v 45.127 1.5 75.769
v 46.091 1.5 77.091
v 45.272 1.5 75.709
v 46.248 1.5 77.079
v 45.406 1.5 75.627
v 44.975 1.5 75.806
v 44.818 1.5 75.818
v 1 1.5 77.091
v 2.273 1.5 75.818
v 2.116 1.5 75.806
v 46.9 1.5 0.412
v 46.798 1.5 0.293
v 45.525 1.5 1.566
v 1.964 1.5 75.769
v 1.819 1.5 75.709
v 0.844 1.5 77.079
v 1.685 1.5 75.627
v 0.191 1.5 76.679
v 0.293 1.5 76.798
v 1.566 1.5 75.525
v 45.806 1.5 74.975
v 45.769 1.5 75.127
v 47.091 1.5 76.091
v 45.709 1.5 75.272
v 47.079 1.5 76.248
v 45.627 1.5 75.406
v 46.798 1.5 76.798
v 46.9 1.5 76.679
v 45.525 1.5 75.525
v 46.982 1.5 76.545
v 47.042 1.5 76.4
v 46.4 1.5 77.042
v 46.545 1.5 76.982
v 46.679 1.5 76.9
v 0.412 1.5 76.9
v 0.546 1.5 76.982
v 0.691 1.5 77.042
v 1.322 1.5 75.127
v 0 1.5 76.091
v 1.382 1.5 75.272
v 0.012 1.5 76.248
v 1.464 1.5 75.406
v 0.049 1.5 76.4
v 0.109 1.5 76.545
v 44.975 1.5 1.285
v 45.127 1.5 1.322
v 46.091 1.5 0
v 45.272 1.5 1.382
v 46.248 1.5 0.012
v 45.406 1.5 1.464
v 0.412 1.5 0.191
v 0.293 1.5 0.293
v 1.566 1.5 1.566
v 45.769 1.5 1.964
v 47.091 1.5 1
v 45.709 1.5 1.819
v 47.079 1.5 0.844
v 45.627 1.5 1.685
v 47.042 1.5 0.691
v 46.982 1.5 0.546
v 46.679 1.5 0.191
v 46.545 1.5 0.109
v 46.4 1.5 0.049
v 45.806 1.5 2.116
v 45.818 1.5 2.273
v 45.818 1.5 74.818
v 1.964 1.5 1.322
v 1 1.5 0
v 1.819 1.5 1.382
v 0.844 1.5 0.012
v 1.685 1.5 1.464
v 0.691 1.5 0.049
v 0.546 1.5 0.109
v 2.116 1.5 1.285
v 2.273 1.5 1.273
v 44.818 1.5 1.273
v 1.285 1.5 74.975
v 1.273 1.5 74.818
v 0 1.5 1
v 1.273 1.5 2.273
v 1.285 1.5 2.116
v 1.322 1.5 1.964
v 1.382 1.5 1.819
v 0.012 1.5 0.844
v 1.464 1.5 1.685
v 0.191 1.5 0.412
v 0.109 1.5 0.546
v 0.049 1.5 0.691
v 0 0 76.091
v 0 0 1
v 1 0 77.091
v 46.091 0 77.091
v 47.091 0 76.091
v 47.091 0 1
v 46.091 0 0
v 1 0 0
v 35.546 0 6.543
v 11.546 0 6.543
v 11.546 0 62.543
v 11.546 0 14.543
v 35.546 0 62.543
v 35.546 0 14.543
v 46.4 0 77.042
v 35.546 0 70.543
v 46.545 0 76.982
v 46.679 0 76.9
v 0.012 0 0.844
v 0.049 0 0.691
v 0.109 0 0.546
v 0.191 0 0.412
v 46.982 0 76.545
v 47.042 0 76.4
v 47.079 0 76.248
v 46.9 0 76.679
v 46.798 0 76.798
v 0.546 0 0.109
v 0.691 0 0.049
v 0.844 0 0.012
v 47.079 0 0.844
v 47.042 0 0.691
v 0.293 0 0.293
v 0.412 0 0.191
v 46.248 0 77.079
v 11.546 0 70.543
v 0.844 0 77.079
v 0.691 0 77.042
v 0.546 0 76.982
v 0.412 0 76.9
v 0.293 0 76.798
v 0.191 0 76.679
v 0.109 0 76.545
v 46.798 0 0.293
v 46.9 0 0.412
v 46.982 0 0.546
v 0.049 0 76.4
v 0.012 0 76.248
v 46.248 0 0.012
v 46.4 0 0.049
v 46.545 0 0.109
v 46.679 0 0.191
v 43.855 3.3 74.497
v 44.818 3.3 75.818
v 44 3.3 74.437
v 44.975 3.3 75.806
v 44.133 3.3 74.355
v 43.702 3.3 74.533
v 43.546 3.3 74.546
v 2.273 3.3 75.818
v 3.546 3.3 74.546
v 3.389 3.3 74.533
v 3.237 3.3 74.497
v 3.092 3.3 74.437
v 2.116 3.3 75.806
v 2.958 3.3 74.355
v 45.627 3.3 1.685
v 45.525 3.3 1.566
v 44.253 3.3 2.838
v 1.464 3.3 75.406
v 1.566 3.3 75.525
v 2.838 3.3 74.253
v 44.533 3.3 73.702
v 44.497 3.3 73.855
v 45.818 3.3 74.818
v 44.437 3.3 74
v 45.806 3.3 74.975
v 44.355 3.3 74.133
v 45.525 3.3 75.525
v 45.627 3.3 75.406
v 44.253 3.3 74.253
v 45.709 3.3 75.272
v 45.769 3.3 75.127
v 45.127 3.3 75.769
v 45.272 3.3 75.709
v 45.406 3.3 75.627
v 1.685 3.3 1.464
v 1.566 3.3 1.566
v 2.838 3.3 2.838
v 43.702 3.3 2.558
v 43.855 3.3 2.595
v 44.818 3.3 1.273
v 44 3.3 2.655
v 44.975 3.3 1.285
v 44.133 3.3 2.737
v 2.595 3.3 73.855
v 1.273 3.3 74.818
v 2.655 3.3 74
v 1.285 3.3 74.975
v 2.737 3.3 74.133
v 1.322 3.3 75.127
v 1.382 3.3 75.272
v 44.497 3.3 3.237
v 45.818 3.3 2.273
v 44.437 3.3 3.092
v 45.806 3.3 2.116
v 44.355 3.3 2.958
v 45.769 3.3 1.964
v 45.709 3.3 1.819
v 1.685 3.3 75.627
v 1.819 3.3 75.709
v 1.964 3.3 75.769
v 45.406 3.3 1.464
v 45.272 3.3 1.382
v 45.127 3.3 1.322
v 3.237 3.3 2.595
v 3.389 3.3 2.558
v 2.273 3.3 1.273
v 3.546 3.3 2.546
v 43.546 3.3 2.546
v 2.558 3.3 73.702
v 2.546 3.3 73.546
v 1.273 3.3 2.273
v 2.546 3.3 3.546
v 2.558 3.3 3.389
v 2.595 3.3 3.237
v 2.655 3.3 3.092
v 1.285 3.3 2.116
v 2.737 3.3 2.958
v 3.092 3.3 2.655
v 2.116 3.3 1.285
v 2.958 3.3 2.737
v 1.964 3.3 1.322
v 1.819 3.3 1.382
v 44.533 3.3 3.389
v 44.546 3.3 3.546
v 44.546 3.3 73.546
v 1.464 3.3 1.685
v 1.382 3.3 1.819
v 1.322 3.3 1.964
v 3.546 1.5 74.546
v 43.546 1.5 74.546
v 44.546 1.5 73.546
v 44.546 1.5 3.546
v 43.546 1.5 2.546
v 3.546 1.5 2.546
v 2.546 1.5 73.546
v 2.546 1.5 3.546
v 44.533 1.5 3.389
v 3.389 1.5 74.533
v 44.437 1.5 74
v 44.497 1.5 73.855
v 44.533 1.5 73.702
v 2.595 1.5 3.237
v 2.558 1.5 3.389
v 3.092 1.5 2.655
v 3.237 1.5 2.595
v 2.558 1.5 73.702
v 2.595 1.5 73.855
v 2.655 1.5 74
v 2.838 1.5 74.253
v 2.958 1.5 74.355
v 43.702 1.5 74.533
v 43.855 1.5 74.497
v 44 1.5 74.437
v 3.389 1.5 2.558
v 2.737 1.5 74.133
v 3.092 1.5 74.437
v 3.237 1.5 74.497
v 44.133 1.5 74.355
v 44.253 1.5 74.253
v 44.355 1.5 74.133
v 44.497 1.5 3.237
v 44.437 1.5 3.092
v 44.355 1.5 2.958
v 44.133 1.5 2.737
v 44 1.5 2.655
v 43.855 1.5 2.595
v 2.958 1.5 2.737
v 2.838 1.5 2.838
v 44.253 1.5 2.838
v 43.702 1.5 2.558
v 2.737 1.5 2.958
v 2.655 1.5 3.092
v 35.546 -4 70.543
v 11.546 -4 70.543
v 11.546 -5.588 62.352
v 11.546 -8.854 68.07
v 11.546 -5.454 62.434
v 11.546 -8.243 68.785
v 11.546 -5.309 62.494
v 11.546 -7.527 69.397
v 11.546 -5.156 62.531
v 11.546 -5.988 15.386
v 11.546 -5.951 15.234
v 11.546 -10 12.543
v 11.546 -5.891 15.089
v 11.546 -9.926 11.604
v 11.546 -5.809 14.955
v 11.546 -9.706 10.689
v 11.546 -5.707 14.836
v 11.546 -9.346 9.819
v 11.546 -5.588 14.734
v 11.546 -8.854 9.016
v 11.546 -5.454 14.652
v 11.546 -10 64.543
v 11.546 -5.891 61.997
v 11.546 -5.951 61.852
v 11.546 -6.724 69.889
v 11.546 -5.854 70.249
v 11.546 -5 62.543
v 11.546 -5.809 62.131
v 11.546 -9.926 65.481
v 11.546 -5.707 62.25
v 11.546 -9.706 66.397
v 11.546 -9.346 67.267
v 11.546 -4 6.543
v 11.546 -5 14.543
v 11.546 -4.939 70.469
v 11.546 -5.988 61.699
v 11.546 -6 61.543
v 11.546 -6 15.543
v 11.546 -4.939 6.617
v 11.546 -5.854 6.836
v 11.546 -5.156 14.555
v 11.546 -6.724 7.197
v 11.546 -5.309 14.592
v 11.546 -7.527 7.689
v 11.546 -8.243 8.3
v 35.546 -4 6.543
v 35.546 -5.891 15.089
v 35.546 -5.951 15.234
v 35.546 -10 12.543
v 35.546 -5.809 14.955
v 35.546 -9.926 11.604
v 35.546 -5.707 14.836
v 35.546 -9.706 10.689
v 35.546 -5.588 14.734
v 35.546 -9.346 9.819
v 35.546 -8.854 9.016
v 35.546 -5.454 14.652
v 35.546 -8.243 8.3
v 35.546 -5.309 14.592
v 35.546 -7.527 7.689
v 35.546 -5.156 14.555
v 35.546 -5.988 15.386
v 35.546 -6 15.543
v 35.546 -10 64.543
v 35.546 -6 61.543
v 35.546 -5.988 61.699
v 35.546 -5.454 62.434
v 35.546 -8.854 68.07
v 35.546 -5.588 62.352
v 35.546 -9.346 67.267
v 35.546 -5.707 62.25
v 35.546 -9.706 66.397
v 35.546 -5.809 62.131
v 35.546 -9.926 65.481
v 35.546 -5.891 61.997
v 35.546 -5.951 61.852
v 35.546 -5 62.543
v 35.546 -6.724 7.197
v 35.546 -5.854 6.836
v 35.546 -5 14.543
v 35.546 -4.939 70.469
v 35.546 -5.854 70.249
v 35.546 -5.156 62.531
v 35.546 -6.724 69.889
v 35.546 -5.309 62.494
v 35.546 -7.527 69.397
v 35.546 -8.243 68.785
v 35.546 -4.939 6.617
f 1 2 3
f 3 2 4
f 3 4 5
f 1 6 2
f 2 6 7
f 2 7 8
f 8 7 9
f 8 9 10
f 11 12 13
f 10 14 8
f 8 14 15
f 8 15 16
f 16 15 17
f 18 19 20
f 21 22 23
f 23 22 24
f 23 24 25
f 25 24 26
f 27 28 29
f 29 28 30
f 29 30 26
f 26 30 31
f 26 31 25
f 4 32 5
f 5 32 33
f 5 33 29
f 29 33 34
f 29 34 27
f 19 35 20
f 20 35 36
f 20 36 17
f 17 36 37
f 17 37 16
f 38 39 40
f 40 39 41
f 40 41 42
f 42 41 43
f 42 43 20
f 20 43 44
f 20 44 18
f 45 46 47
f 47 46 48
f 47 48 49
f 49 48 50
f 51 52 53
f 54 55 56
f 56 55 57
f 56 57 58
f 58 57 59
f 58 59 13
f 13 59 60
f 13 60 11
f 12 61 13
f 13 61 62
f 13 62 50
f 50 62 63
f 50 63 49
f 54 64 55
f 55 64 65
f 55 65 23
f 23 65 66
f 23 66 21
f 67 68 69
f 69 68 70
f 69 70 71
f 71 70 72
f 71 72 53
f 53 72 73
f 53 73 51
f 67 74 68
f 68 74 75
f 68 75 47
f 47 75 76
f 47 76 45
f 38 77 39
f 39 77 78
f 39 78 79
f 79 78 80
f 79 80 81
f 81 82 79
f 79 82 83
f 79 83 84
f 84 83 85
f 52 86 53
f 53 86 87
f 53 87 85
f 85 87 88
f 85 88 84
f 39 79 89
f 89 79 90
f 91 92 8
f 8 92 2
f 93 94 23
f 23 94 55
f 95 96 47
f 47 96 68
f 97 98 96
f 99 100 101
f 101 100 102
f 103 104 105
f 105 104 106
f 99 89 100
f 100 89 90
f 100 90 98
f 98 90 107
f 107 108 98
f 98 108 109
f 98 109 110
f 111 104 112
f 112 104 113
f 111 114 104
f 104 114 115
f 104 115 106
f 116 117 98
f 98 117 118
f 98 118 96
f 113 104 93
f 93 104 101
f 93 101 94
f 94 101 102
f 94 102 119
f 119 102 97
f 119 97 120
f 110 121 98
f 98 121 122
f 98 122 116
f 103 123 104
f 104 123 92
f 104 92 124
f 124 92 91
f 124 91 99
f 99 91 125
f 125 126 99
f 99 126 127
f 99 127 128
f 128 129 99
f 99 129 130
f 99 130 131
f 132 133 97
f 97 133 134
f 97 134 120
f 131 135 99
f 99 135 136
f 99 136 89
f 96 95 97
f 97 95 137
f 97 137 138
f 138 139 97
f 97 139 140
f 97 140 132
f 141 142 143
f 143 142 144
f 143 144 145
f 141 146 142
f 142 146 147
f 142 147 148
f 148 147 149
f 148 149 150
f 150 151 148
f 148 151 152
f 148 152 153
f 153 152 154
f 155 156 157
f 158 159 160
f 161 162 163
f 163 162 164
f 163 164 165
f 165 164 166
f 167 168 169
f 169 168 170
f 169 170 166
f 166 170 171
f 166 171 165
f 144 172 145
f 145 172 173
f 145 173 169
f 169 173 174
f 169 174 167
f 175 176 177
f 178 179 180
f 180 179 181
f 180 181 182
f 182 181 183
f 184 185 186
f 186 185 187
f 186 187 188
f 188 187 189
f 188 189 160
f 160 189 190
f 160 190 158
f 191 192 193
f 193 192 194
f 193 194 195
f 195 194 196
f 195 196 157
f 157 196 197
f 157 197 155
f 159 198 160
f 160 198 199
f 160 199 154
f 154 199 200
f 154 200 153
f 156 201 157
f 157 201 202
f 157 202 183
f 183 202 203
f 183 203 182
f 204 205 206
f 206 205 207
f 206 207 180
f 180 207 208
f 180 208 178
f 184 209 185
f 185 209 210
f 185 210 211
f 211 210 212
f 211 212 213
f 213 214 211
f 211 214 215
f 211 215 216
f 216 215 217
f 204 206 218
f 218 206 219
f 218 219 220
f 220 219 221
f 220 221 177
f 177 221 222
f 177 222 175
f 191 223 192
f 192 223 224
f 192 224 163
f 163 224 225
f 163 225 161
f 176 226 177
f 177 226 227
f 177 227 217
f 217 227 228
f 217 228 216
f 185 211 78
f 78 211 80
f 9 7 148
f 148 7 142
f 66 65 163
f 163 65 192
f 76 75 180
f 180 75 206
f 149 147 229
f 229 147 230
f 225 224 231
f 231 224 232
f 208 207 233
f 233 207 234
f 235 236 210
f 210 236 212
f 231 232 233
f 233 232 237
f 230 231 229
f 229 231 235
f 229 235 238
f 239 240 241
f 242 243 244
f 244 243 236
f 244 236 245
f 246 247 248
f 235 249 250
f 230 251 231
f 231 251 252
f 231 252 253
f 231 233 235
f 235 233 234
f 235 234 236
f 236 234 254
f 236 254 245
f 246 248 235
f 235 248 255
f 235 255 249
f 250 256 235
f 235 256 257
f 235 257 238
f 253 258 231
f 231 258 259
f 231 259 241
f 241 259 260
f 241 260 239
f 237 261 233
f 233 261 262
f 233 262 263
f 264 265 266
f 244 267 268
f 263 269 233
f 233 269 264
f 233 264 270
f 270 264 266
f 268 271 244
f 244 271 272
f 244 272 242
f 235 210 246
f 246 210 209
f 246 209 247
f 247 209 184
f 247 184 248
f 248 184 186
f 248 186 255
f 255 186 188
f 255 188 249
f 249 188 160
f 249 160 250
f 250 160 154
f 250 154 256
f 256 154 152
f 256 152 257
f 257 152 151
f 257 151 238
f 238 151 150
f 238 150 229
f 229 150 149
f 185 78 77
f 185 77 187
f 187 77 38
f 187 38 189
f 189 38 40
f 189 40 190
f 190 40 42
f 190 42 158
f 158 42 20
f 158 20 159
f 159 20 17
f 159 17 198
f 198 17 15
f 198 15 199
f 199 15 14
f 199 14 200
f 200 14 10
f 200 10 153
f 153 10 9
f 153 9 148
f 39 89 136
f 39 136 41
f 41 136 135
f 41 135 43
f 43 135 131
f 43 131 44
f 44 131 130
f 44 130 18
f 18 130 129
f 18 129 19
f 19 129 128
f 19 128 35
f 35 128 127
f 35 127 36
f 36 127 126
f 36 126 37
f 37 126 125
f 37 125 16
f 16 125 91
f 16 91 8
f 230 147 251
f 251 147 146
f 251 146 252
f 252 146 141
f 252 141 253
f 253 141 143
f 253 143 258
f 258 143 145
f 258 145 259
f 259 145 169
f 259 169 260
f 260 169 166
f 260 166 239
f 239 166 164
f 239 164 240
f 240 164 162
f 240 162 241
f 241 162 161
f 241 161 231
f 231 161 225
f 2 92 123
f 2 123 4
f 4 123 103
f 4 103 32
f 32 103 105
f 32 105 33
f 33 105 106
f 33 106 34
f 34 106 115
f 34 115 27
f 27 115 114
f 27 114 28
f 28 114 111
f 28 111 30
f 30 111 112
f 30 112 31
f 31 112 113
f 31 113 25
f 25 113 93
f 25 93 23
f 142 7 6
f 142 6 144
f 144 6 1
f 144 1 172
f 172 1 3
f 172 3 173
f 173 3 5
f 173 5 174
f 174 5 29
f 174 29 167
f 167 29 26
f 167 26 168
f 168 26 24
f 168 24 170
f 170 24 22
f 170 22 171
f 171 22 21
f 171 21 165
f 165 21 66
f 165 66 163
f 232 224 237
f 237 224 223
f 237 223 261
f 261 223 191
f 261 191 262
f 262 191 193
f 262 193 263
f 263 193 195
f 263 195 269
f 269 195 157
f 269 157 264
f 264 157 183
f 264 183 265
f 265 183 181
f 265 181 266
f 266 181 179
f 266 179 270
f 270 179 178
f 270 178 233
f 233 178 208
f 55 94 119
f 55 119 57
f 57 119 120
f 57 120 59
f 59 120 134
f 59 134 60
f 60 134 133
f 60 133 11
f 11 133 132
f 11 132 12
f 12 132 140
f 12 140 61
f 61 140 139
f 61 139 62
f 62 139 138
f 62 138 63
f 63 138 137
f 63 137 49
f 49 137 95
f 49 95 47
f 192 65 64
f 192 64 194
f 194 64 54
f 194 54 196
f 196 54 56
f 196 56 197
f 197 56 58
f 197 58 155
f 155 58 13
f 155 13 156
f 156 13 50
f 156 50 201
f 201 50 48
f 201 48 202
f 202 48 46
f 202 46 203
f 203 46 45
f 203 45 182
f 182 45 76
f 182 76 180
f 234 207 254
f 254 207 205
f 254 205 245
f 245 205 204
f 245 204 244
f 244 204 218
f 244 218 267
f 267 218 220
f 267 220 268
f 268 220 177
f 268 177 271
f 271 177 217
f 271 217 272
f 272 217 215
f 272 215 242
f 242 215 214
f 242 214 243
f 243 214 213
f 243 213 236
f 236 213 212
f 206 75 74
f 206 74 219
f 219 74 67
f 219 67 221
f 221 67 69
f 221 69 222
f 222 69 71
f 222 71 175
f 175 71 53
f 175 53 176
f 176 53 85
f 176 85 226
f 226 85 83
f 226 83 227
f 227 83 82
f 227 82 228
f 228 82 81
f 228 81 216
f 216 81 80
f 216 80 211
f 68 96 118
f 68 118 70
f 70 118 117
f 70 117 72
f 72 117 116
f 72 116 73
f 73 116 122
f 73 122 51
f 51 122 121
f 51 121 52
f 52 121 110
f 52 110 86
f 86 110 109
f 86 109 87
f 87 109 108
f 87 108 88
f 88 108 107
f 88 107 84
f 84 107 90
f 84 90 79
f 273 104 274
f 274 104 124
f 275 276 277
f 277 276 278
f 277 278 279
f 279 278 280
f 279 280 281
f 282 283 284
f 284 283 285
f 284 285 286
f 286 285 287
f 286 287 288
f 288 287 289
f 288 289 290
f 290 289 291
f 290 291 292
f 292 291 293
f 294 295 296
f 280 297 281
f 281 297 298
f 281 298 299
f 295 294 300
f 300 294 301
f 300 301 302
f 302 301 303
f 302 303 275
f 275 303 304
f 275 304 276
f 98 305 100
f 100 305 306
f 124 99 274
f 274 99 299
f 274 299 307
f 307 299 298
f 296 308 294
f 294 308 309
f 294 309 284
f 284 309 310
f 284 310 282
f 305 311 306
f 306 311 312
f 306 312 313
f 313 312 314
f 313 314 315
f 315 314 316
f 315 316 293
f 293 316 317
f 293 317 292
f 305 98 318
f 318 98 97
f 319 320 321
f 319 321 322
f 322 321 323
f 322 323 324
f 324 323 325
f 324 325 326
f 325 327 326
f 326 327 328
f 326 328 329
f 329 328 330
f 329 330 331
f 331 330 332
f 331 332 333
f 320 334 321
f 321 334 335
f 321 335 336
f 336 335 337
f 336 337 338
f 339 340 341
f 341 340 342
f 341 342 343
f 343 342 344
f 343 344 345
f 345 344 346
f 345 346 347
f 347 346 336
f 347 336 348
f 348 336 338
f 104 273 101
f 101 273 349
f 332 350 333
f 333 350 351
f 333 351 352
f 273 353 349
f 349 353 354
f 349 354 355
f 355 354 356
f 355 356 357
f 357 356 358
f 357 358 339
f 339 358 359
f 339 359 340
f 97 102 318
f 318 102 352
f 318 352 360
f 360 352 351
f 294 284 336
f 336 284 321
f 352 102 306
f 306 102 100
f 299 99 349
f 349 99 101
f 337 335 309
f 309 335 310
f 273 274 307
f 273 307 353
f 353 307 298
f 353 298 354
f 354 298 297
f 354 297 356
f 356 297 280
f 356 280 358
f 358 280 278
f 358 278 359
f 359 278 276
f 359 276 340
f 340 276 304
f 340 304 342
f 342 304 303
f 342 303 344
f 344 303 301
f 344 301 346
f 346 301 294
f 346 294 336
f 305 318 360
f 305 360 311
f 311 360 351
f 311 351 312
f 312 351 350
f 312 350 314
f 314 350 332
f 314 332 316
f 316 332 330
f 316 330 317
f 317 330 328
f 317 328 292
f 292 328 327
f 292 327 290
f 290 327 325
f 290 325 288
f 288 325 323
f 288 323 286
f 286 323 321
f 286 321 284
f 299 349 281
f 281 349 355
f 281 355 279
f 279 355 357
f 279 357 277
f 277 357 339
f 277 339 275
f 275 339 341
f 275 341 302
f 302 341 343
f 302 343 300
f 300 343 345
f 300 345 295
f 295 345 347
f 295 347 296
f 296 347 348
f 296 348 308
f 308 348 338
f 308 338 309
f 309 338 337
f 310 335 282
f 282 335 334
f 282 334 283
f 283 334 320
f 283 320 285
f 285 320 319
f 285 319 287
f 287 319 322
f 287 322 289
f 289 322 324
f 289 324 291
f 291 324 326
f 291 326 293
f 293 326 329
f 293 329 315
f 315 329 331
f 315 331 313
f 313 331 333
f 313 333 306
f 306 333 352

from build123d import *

# Parameters (mm, degrees)
SKETCH1_W           = 47.09116882
SKETCH1_H           = 77.09116882
BOSS_EXTRUDE1_DEPTH = 1.5
SKETCH2_W           = 44.545584412
SKETCH2_H           = 74.545584412
SKETCH2_W_2         = 42
SKETCH2_H_2         = 72
BOSS_EXTRUDE2_DEPTH = 1.8
FILLET1_R           = 1
SKETCH3_W           = 24
SKETCH3_H           = 64
BOSS_EXTRUDE3_DEPTH = 10
SKETCH4_W           = 48
SKETCH4_H           = 6
CUT_EXTRUDE1_DEPTH  = 24
FILLET2_R           = 6
FILLET3_R           = 1


with BuildPart() as part:
    # Sketch1 → Boss-Extrude1 (new body)
    with BuildSketch(Plane(origin=(0, 0, 0), x_dir=(1, 0, 0), z_dir=(0, 1, 0))):
        with Locations((23.54558441, -38.54558441)):
            Rectangle(SKETCH1_W, SKETCH1_H)
    extrude(amount=BOSS_EXTRUDE1_DEPTH)

    # Sketch2 → Boss-Extrude2 (add)
    with BuildSketch(Plane(origin=(0, 1.5, 0), x_dir=(1, 0, 0), z_dir=(0, 1, 0))):
        with Locations((23.545584412, -38.545584412)):
            Rectangle(SKETCH2_W, SKETCH2_H)
        with Locations((23.545584412, -38.545584412)):
            Rectangle(SKETCH2_W_2, SKETCH2_H_2, mode=Mode.SUBTRACT)
    extrude(amount=BOSS_EXTRUDE2_DEPTH)

    # Fillet1
    fillet1_edges = [part.edges().sort_by_distance(p)[0] for p in [
        (1.272792206, 2.4, 1.272792206),
        (1.272792206, 2.4, 75.818376618),
        (45.818376618, 2.4, 75.818376618),
        (45.818376618, 2.4, 1.272792206),
        (44.545584412, 2.4, 74.545584412),
        (44.545584412, 2.4, 2.545584412),
        (2.545584412, 2.4, 2.545584412),
        (2.545584412, 2.4, 74.545584412),
        (0, 0.75, 0),
        (47.09116882, 0.75, 0),
        (47.09116882, 0.75, 77.09116882),
        (0, 0.75, 77.09116882),
    ]]
    fillet(fillet1_edges, radius=FILLET1_R)

    # Sketch3 → Boss-Extrude3 (add)
    with BuildSketch(Plane.XZ):
        with Locations((23.54558441, 38.542813716)):
            Rectangle(SKETCH3_W, SKETCH3_H)
    extrude(amount=BOSS_EXTRUDE3_DEPTH)

    # Sketch4 → Cut-Extrude1 (cut)
    with BuildSketch(Plane.ZY.offset(-11.54558441)):
        with Locations((38.542813716, -3)):
            Rectangle(SKETCH4_W, SKETCH4_H)
    extrude(amount=-CUT_EXTRUDE1_DEPTH, mode=Mode.SUBTRACT)

    # Fillet2
    fillet2_edges = [part.edges().sort_by_distance(p)[0] for p in [
        (23.54558441, -10, 70.542813716),
        (23.54558441, -10, 6.542813716),
    ]]
    fillet(fillet2_edges, radius=FILLET2_R)

    # Fillet3
    fillet3_edges = [part.edges().sort_by_distance(p)[0] for p in [
        (23.54558441, -6, 14.542813716),
        (23.54558441, -6, 62.542813716),
    ]]
    fillet(fillet3_edges, radius=FILLET3_R)


solid = part.part
